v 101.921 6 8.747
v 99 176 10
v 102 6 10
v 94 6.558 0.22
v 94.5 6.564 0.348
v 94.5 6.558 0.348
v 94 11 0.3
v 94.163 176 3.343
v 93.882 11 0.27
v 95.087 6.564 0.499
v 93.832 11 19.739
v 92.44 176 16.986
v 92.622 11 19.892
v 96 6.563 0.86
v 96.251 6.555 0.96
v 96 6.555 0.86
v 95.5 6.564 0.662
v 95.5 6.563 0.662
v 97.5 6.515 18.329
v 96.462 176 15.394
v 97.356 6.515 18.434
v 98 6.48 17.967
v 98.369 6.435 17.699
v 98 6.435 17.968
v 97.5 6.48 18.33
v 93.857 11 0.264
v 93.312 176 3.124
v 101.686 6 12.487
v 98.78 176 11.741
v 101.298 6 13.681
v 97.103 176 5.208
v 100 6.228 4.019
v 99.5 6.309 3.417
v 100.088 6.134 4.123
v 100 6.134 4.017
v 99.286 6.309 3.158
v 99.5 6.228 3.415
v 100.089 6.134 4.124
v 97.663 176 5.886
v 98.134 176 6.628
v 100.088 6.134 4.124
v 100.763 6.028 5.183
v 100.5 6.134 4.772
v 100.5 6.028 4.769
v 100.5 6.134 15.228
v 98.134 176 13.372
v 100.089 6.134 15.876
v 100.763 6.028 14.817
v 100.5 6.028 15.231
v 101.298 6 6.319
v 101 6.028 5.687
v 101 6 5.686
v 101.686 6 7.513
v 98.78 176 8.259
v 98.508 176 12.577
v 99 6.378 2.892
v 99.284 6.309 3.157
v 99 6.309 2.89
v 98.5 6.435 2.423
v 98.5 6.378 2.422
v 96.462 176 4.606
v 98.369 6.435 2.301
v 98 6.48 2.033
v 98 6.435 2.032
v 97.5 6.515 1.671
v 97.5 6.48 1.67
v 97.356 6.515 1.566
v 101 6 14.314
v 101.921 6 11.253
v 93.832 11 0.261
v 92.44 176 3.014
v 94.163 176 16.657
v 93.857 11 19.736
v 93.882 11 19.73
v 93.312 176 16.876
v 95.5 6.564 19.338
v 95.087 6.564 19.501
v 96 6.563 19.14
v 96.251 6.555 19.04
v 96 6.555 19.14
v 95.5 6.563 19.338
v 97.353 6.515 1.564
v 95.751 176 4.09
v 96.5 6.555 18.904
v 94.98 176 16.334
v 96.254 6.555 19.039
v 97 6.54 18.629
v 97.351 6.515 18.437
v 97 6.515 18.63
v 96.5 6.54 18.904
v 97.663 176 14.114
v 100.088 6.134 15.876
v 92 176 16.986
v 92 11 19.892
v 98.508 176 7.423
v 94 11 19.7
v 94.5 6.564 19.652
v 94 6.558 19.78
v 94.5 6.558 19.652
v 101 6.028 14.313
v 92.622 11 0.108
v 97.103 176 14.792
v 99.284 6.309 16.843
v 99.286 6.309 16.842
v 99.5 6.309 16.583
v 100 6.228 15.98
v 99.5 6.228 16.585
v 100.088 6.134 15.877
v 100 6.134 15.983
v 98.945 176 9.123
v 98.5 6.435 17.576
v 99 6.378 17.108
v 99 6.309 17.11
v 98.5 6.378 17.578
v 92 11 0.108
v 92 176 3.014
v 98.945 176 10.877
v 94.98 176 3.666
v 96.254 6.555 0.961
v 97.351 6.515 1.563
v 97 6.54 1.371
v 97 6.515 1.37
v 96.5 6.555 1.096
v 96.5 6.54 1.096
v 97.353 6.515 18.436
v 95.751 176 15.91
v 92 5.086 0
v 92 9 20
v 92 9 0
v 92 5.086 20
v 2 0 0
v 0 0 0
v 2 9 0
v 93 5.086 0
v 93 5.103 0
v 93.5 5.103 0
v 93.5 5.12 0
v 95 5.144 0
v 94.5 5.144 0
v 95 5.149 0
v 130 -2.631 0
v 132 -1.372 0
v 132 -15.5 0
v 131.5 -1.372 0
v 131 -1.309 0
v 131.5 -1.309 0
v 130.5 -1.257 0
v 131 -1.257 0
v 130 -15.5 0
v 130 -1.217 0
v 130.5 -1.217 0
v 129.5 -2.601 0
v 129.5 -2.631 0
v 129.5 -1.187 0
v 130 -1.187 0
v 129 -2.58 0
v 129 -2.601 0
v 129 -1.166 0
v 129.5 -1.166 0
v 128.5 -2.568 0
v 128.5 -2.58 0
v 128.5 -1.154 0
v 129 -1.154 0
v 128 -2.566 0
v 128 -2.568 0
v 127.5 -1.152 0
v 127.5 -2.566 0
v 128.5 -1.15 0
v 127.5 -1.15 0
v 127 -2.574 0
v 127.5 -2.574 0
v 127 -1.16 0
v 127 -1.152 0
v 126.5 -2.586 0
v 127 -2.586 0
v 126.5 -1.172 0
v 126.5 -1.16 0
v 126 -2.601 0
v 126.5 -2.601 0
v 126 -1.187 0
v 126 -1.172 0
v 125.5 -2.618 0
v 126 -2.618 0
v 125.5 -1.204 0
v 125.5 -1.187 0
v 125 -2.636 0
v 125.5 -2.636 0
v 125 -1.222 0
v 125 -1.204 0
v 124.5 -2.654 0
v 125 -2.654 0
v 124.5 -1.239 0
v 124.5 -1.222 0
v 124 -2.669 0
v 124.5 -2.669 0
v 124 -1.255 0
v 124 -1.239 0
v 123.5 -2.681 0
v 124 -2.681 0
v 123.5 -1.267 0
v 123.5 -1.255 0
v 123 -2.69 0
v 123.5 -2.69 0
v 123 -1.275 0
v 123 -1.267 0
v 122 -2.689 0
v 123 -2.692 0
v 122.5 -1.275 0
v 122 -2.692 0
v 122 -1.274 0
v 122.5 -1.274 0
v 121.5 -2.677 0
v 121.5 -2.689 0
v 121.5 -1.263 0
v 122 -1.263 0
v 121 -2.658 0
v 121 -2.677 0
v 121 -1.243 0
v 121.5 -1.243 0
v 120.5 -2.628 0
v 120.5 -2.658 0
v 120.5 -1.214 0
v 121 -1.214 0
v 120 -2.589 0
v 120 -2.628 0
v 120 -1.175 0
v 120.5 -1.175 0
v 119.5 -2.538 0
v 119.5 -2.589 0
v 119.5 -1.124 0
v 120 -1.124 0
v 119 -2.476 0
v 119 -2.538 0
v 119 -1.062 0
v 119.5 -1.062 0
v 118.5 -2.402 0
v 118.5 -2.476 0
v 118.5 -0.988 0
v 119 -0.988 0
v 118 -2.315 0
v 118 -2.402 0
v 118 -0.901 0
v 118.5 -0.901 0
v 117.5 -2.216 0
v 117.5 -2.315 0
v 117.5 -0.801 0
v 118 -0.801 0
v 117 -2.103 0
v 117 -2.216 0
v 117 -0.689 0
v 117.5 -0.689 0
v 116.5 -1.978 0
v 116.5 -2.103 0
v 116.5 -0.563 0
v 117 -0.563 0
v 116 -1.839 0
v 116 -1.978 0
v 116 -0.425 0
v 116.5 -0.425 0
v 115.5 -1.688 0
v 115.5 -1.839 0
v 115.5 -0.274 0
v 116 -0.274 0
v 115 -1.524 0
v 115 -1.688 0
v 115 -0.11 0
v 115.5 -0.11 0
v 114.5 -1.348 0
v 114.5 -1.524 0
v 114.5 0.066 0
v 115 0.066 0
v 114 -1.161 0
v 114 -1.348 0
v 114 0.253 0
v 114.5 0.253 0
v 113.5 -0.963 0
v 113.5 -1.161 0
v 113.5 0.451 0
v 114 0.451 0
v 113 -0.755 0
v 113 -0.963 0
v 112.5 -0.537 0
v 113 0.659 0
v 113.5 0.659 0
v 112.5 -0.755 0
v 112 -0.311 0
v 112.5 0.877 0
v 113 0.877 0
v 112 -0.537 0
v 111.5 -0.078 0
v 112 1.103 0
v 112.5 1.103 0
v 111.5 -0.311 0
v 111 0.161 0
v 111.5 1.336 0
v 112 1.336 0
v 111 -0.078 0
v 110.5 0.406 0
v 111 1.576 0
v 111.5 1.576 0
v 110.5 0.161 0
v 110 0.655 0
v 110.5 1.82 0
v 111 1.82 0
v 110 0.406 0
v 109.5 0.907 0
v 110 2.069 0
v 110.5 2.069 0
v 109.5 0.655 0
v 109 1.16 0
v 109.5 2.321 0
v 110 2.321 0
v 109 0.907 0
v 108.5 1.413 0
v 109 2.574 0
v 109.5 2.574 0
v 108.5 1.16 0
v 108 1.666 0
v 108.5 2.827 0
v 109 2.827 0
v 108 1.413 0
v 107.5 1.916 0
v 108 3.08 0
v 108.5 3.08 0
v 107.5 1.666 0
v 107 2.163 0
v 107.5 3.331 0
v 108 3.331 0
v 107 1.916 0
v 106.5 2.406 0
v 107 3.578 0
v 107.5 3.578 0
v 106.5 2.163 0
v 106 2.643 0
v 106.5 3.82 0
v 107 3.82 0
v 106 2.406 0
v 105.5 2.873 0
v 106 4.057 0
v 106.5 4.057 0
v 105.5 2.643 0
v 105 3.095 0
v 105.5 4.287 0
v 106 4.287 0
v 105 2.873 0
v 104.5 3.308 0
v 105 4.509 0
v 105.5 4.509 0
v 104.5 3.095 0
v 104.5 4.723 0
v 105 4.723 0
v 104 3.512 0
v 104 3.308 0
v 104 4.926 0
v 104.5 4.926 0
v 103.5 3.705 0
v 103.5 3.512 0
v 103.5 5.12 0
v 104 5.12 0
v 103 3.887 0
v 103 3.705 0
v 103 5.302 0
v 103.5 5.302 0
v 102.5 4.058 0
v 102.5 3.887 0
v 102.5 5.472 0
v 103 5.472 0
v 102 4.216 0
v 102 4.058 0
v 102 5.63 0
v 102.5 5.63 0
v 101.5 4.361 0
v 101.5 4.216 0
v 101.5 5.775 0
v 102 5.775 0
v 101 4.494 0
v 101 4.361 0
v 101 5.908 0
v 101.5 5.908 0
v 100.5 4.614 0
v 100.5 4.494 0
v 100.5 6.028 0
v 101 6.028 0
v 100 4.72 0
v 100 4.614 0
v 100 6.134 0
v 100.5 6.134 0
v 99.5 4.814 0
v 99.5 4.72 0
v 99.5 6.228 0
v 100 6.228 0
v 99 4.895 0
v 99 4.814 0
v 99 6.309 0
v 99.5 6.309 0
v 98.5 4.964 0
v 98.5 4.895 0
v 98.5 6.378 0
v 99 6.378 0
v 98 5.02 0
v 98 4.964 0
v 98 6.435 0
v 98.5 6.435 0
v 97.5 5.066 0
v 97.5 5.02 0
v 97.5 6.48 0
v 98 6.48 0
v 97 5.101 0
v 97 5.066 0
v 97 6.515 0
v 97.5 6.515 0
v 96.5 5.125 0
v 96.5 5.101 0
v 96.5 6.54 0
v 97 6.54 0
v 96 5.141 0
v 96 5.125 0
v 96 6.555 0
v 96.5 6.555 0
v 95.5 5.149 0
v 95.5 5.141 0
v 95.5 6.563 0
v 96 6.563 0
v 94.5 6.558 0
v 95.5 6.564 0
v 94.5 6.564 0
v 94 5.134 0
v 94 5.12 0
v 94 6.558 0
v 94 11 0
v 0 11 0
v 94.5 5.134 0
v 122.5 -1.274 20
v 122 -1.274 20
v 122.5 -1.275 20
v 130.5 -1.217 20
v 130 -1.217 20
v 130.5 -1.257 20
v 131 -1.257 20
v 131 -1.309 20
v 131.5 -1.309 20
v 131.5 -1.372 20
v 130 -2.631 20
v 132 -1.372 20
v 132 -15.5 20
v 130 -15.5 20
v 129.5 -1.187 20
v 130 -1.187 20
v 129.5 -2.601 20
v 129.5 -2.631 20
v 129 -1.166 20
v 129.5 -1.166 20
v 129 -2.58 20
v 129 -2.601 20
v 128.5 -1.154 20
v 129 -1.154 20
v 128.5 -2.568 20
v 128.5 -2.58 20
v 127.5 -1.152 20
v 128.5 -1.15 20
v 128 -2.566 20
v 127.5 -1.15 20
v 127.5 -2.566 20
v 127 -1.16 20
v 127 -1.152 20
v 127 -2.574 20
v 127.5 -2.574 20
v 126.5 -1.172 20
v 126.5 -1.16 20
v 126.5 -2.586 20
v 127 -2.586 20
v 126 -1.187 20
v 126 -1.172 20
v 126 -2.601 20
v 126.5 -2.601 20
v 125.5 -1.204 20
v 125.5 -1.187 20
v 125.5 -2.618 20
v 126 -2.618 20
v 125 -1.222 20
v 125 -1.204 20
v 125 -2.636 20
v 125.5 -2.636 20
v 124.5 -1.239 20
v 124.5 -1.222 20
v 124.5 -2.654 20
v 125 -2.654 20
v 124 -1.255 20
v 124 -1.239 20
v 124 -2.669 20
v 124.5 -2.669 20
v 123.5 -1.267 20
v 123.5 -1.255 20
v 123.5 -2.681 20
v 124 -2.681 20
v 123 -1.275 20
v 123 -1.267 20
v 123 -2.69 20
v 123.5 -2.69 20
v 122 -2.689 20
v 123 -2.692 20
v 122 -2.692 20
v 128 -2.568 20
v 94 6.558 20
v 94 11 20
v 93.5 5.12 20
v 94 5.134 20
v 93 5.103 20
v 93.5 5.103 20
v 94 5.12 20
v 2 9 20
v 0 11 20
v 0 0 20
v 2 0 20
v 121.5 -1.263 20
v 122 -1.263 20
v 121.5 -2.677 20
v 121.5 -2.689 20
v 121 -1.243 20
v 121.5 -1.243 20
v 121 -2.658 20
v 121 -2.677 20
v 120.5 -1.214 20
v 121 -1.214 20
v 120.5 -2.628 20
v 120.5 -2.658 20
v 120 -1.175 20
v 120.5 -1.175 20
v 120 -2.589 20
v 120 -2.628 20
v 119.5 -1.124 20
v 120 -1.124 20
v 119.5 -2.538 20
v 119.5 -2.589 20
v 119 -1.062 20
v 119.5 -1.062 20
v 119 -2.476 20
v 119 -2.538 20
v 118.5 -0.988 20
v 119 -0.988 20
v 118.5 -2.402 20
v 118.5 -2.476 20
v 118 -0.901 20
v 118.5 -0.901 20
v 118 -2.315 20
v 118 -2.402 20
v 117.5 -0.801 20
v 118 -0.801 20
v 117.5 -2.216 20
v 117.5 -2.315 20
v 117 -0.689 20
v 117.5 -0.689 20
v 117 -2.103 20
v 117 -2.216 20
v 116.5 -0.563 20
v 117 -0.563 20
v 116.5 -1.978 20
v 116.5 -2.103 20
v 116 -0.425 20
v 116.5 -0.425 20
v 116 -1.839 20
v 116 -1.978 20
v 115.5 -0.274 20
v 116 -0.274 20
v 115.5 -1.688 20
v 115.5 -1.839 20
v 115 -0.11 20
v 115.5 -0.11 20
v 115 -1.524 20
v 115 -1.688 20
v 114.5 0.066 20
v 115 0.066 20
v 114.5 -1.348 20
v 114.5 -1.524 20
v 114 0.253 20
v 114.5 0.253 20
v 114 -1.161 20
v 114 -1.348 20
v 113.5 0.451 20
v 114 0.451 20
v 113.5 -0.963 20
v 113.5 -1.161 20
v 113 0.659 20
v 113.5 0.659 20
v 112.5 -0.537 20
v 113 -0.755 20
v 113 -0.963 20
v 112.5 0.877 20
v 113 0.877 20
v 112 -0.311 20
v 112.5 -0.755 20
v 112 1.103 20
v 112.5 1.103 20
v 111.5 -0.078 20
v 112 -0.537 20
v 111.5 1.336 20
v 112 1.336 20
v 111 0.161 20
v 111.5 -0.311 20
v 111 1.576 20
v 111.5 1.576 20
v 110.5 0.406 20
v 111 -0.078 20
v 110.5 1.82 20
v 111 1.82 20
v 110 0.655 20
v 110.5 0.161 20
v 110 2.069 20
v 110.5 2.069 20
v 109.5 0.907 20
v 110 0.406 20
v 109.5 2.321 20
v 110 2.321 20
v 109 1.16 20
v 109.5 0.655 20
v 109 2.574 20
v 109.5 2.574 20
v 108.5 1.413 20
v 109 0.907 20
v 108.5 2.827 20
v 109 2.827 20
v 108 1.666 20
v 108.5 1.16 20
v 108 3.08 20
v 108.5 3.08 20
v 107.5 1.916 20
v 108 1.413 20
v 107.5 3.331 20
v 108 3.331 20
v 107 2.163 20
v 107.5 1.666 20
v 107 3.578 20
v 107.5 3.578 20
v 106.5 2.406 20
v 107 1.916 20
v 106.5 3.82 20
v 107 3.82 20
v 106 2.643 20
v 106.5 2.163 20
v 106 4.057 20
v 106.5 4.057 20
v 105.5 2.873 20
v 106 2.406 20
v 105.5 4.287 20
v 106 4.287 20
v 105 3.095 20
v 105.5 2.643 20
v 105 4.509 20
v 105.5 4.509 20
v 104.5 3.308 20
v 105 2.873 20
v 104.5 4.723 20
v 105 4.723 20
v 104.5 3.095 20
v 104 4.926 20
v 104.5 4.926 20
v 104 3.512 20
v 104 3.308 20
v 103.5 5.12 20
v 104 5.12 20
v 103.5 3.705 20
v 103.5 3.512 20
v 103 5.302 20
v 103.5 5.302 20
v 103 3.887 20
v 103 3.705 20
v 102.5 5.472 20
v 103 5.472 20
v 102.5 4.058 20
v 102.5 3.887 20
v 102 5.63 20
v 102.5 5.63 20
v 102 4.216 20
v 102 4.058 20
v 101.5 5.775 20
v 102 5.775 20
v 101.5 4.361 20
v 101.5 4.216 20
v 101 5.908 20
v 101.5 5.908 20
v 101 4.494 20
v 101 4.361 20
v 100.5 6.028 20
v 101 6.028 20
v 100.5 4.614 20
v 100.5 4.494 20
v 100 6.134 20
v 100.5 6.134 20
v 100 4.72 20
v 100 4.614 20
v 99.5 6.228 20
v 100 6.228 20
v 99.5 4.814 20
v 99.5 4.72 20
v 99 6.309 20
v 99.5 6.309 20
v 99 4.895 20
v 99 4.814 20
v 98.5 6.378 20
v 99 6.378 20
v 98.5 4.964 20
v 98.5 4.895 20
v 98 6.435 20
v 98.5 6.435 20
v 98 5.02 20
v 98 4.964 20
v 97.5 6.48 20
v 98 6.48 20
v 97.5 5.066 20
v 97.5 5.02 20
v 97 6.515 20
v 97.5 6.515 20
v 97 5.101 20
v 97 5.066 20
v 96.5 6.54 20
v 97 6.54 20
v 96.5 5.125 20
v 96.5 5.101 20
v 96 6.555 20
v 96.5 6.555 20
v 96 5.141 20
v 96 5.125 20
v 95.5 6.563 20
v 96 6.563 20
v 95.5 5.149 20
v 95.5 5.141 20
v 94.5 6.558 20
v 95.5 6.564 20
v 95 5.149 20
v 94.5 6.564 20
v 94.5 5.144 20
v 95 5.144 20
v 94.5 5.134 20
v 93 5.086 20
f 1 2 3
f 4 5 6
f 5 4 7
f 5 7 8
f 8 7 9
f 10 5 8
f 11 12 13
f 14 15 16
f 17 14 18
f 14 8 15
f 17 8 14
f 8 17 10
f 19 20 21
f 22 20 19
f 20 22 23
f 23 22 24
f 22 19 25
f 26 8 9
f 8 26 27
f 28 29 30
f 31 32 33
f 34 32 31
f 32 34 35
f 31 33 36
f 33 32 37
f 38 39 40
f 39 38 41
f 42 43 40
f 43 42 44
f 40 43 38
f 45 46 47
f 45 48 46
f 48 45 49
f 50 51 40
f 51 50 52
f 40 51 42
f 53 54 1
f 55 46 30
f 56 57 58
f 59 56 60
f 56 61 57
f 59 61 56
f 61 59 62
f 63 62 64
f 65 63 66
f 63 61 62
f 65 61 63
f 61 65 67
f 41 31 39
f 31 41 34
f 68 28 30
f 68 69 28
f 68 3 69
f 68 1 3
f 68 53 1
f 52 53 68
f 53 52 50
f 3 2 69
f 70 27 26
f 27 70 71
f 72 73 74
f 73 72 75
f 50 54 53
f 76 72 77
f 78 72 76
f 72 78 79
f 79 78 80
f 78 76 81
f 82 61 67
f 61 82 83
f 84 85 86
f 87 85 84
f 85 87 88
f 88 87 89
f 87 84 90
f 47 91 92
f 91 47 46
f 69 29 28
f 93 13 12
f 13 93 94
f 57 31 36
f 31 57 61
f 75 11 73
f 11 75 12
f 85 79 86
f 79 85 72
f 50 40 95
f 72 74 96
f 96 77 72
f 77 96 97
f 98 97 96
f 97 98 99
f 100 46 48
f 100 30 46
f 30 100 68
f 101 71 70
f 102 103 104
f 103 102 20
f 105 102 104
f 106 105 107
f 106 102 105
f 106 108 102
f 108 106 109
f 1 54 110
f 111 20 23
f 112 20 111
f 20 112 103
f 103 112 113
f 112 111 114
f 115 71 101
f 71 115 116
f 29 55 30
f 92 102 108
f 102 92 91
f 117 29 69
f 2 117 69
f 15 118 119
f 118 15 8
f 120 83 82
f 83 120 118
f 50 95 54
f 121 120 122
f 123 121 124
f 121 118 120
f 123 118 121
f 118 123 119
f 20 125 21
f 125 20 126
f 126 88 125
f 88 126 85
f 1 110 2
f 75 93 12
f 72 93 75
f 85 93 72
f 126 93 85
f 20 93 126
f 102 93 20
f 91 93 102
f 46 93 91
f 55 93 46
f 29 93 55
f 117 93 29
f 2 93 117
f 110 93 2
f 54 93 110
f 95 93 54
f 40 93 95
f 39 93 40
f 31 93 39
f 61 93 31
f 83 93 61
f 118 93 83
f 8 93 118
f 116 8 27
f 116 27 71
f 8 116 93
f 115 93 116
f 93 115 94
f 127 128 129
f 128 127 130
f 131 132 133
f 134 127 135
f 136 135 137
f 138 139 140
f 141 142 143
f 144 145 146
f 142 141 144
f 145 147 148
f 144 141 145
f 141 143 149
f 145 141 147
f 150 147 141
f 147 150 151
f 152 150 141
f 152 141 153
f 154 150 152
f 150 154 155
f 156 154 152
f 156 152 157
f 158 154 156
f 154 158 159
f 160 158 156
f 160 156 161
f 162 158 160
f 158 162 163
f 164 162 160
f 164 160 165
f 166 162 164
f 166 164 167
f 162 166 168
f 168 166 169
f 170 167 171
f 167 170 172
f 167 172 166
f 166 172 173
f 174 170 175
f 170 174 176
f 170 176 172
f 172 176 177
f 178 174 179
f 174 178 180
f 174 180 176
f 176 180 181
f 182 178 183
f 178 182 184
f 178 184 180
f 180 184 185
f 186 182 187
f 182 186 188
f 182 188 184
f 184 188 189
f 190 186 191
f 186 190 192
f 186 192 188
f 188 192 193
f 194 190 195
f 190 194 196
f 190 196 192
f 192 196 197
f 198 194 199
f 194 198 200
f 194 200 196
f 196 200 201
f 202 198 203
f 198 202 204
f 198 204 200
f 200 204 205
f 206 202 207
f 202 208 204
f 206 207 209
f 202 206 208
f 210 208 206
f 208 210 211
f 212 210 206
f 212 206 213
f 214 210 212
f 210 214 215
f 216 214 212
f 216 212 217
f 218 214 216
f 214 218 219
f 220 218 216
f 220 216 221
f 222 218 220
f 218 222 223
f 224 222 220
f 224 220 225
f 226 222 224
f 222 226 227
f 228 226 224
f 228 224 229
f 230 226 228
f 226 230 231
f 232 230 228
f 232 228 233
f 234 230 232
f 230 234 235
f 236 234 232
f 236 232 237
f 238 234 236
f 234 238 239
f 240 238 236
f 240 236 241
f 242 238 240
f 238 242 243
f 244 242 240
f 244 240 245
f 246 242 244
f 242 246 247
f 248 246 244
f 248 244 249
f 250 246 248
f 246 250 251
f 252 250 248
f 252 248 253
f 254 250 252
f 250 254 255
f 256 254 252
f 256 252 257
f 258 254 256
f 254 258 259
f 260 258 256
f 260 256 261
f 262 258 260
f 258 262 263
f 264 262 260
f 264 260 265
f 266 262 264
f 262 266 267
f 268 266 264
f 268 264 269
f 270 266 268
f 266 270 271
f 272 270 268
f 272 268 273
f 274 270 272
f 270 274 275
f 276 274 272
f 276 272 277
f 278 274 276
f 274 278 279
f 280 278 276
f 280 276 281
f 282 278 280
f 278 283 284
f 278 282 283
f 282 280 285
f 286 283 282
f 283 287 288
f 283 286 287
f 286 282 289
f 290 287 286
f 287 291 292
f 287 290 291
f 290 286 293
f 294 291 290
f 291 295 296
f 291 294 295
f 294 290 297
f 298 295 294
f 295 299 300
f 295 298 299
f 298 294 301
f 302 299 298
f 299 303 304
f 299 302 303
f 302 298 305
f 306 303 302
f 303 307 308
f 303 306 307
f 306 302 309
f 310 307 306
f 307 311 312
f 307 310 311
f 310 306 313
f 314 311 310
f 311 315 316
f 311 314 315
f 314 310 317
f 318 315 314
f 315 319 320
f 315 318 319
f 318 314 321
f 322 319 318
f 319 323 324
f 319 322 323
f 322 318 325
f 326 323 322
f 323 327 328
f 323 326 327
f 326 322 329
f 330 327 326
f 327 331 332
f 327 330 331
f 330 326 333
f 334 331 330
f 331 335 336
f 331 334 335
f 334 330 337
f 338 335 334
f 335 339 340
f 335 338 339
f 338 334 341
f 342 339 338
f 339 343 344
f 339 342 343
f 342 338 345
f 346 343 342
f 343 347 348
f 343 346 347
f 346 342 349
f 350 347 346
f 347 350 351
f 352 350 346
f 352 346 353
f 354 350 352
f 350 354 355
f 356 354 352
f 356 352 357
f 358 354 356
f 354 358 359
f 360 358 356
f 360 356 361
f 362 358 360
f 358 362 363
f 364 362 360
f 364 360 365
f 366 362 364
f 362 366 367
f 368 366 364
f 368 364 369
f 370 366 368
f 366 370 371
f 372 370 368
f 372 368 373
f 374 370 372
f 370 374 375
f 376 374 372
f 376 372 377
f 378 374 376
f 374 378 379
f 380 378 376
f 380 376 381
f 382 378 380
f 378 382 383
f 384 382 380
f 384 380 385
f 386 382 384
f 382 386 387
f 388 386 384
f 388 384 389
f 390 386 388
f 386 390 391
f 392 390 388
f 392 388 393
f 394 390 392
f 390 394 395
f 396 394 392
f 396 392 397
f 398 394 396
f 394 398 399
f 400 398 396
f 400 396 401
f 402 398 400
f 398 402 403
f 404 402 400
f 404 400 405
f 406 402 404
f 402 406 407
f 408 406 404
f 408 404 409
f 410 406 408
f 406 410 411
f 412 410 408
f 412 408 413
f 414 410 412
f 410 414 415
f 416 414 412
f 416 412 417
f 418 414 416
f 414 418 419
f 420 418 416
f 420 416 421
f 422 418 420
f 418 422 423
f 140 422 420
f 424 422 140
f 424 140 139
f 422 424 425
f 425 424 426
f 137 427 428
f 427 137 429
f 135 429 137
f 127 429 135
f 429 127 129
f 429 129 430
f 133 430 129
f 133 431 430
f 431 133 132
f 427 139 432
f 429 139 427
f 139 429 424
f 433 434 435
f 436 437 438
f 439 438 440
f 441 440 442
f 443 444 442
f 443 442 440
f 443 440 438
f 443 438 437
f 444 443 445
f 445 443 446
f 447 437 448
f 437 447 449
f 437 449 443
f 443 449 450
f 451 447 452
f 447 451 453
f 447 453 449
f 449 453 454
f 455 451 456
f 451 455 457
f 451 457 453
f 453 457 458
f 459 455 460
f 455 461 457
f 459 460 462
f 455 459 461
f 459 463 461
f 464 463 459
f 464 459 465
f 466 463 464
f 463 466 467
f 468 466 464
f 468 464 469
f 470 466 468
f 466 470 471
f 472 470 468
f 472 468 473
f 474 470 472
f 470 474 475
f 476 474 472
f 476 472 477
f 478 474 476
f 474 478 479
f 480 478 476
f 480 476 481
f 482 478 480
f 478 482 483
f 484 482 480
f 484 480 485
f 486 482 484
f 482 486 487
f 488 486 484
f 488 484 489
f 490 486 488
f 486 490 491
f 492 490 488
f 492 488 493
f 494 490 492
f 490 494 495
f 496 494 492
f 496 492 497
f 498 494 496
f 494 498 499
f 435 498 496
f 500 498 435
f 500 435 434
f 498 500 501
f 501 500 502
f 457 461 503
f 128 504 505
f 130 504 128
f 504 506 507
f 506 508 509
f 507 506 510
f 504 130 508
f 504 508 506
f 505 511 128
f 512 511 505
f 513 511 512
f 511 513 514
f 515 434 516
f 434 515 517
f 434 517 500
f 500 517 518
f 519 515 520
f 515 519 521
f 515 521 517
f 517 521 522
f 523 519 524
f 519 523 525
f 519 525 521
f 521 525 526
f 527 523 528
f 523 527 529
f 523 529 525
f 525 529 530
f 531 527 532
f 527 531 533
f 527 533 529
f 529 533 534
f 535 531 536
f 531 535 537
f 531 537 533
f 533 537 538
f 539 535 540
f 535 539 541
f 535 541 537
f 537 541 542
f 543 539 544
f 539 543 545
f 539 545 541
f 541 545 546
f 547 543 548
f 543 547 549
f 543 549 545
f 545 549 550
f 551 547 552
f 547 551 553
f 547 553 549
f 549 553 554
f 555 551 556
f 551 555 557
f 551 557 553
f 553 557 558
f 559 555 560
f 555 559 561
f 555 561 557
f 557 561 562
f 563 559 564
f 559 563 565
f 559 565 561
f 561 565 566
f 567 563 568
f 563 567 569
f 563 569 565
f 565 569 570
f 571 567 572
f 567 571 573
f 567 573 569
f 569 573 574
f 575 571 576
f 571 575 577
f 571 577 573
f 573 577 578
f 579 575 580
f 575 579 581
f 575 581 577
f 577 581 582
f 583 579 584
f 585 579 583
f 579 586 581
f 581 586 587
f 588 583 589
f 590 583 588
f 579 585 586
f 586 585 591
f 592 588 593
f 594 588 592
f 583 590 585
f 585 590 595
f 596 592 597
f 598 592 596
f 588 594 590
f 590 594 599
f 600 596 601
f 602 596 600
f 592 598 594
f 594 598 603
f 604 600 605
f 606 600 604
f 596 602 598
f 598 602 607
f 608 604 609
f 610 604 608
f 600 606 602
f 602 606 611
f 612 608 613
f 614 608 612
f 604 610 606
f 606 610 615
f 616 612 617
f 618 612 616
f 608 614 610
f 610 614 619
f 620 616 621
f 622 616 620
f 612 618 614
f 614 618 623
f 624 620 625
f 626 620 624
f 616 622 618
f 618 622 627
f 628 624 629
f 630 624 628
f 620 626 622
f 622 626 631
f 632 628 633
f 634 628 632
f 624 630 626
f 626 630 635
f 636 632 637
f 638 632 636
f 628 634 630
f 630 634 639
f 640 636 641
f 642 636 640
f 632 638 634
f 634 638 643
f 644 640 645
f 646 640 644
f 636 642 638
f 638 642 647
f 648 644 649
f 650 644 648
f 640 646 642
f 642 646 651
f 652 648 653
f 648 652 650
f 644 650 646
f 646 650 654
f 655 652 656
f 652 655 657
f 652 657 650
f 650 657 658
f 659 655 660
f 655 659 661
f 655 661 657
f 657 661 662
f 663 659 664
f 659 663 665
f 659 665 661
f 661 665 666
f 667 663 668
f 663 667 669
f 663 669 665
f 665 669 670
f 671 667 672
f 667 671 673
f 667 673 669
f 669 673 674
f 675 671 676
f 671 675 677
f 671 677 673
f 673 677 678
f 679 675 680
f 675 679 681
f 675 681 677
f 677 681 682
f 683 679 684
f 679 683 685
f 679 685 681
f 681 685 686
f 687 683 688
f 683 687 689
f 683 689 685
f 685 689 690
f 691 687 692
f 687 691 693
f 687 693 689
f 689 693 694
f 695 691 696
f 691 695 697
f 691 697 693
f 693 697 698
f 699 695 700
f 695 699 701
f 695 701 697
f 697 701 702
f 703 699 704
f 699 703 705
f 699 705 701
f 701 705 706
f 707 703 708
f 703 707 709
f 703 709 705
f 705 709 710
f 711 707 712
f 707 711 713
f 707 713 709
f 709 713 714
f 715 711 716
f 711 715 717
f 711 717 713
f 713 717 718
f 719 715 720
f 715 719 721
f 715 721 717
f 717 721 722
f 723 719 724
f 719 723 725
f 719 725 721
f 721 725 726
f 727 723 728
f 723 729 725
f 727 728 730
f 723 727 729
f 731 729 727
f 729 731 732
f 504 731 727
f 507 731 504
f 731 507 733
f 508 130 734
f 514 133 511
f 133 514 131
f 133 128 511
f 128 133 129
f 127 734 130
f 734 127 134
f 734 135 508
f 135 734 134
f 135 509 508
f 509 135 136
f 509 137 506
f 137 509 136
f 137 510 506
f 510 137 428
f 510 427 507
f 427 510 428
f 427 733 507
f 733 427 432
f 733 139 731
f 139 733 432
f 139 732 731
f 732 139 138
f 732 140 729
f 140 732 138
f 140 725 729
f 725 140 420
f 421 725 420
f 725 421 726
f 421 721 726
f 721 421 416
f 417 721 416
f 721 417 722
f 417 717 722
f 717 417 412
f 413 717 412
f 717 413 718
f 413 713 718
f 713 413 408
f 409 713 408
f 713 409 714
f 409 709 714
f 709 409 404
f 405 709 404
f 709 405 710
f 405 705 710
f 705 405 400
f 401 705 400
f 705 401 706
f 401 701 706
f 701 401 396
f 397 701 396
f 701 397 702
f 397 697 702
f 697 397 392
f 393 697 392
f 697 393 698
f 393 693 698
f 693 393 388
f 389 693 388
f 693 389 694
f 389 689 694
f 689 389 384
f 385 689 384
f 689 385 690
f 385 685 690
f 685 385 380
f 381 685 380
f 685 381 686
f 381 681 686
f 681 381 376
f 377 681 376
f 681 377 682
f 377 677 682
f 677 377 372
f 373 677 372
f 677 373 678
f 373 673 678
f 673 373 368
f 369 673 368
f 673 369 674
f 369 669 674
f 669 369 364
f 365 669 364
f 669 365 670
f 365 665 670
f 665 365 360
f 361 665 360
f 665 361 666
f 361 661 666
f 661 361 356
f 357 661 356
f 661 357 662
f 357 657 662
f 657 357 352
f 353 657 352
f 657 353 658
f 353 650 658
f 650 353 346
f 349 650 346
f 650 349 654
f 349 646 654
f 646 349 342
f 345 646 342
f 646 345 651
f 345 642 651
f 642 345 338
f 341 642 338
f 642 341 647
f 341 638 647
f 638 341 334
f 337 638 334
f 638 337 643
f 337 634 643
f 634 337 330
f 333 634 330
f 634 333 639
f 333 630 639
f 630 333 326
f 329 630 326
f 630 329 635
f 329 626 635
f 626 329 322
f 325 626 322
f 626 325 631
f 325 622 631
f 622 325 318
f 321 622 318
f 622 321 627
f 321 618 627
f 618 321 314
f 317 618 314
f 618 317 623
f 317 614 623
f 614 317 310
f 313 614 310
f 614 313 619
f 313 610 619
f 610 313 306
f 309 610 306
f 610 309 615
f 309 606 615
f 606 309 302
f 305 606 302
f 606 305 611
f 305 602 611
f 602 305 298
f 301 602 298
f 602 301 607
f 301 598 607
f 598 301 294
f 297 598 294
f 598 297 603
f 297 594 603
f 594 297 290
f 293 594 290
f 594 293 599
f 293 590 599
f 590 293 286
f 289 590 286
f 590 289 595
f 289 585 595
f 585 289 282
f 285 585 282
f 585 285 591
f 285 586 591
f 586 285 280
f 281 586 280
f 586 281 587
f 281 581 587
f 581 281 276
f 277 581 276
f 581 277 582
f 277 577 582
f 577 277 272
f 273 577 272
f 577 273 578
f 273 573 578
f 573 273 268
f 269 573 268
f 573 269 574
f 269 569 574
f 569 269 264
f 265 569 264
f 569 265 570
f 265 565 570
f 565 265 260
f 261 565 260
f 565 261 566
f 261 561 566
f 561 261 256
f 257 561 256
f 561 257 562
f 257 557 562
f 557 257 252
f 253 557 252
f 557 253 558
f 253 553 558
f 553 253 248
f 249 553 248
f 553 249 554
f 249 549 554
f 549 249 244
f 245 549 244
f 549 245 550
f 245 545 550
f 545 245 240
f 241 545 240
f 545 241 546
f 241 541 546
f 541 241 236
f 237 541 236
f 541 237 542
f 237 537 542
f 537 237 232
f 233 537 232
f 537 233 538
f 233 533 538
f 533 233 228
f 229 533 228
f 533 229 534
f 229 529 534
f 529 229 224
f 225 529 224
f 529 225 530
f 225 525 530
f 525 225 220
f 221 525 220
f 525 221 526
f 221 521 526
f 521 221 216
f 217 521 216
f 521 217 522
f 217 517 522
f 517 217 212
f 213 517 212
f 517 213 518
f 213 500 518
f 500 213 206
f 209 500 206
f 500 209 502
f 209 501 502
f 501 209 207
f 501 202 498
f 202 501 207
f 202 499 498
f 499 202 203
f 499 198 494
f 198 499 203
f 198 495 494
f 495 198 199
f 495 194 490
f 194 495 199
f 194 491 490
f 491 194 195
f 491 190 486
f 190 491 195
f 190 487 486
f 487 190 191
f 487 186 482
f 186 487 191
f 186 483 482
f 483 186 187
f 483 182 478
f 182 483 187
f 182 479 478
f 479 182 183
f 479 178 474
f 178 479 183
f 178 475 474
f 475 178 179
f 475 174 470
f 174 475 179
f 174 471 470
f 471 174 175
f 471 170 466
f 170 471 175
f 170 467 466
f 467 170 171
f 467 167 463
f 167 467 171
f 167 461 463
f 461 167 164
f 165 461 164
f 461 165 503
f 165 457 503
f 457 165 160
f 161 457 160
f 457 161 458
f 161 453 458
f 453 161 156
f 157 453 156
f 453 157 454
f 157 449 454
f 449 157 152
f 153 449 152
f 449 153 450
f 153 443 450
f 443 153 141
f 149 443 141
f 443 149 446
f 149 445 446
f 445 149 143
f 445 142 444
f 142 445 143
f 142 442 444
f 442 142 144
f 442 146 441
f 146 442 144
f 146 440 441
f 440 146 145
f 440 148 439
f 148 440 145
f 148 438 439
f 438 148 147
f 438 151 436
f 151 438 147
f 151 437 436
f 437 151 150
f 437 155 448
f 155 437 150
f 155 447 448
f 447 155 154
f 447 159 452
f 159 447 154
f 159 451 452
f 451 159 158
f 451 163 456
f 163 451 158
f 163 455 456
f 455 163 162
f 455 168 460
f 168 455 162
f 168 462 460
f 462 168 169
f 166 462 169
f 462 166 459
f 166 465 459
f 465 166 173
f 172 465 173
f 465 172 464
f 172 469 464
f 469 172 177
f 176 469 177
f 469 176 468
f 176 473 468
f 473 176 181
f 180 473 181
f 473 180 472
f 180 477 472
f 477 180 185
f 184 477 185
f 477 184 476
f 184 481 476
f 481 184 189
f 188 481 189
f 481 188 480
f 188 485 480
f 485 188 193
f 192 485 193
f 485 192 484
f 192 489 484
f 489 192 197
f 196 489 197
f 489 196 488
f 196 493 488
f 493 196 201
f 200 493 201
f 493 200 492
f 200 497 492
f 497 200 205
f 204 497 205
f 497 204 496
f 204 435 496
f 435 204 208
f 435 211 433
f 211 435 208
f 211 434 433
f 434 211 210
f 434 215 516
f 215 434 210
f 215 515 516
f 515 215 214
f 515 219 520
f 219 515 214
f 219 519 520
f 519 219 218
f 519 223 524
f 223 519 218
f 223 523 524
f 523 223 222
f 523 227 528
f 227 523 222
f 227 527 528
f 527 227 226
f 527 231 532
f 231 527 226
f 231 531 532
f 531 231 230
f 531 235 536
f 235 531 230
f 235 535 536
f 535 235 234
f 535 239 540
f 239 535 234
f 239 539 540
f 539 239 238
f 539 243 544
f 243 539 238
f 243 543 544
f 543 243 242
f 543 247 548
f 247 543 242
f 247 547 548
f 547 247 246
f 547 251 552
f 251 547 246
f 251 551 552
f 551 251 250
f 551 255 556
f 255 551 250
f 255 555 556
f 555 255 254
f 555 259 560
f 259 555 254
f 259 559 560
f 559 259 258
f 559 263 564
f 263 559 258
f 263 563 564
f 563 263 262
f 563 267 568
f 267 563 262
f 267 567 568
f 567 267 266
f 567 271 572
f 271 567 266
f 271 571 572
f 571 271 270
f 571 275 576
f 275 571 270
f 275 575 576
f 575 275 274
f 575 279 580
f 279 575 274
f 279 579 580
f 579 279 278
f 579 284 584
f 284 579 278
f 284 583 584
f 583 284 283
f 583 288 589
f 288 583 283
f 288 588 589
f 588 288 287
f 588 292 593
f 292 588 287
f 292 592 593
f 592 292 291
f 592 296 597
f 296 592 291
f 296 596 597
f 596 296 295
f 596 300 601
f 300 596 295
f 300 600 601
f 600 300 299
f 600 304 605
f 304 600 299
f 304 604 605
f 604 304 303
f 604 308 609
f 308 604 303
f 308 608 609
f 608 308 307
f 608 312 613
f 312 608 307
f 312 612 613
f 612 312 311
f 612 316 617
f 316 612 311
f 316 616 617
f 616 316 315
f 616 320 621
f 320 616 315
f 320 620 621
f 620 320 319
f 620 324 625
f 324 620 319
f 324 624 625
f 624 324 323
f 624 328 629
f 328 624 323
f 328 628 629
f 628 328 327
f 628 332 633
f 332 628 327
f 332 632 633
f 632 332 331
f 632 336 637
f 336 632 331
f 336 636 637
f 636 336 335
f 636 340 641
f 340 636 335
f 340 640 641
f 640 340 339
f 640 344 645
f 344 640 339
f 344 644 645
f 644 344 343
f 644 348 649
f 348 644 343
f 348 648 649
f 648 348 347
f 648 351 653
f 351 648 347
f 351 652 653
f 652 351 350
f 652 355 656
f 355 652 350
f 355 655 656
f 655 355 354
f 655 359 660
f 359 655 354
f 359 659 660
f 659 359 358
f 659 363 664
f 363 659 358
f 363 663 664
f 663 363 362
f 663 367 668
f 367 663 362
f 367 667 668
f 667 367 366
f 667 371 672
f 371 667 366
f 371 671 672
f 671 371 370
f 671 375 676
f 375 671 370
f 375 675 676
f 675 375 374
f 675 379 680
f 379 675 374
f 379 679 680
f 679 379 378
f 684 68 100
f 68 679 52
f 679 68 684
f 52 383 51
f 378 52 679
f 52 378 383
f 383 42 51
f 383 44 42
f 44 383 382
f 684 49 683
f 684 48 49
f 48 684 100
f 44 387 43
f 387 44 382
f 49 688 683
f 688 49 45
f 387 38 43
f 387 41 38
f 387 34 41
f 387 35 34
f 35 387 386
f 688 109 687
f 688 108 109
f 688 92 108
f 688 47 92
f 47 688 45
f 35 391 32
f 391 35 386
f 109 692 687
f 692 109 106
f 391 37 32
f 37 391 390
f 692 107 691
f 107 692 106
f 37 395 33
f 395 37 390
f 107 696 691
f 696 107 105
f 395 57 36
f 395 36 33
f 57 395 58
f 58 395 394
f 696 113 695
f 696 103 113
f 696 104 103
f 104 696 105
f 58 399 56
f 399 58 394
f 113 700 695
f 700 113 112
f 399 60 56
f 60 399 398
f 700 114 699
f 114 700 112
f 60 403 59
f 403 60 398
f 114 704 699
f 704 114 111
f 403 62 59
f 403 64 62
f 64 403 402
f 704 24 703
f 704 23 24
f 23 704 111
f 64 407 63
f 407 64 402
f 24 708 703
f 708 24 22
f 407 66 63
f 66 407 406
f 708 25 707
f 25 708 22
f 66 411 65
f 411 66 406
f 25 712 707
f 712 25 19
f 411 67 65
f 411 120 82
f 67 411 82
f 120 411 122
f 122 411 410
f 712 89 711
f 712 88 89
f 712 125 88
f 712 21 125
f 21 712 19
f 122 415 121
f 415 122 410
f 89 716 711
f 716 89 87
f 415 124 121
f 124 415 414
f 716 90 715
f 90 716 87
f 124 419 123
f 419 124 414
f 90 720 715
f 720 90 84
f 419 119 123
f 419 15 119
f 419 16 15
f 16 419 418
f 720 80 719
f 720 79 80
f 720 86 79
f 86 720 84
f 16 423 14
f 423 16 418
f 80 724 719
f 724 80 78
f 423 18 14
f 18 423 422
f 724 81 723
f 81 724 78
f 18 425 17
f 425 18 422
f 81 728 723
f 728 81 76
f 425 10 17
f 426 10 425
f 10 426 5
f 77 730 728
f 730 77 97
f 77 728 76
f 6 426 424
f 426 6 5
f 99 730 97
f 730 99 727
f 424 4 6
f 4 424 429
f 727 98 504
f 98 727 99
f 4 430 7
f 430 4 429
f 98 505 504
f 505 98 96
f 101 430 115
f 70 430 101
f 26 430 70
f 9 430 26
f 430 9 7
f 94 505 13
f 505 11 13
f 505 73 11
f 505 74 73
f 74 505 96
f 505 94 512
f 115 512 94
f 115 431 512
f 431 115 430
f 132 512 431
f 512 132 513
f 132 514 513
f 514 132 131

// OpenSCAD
$fn=50;
    
linear_extrude(height = 20) {
    square([2,9],center=false);
    translate([0, 9, 0]) {
        square([94, 2],center=false);
        translate([92, 0, 0]) {
            //wall sine mount
            rotate([180, 0, 0]) {
                square([2, 2.5],center=false);
                translate([0, 2.5]) {
                    for(i=[0:0.5:39]){
                        rotate([45, 0, 0]) translate([i, i/3 + 2 * sin(11*(i + 180)),0]) square([1, 2],center=false);
                    }
                    translate([38, 8, 0]) {
                        square([2, 14],center=false);
                    }
                }
            }
        }
    }
}


//bottom round branch
rotate([270, 0, 0]) {
    translate([92, -10, 6]) {
        difference() {
            cylinder(h=170, r1=10, r2=7, center=false);
            translate([-20, -10, -5]) cube([20, 20, 180]);
        }
    }
}
